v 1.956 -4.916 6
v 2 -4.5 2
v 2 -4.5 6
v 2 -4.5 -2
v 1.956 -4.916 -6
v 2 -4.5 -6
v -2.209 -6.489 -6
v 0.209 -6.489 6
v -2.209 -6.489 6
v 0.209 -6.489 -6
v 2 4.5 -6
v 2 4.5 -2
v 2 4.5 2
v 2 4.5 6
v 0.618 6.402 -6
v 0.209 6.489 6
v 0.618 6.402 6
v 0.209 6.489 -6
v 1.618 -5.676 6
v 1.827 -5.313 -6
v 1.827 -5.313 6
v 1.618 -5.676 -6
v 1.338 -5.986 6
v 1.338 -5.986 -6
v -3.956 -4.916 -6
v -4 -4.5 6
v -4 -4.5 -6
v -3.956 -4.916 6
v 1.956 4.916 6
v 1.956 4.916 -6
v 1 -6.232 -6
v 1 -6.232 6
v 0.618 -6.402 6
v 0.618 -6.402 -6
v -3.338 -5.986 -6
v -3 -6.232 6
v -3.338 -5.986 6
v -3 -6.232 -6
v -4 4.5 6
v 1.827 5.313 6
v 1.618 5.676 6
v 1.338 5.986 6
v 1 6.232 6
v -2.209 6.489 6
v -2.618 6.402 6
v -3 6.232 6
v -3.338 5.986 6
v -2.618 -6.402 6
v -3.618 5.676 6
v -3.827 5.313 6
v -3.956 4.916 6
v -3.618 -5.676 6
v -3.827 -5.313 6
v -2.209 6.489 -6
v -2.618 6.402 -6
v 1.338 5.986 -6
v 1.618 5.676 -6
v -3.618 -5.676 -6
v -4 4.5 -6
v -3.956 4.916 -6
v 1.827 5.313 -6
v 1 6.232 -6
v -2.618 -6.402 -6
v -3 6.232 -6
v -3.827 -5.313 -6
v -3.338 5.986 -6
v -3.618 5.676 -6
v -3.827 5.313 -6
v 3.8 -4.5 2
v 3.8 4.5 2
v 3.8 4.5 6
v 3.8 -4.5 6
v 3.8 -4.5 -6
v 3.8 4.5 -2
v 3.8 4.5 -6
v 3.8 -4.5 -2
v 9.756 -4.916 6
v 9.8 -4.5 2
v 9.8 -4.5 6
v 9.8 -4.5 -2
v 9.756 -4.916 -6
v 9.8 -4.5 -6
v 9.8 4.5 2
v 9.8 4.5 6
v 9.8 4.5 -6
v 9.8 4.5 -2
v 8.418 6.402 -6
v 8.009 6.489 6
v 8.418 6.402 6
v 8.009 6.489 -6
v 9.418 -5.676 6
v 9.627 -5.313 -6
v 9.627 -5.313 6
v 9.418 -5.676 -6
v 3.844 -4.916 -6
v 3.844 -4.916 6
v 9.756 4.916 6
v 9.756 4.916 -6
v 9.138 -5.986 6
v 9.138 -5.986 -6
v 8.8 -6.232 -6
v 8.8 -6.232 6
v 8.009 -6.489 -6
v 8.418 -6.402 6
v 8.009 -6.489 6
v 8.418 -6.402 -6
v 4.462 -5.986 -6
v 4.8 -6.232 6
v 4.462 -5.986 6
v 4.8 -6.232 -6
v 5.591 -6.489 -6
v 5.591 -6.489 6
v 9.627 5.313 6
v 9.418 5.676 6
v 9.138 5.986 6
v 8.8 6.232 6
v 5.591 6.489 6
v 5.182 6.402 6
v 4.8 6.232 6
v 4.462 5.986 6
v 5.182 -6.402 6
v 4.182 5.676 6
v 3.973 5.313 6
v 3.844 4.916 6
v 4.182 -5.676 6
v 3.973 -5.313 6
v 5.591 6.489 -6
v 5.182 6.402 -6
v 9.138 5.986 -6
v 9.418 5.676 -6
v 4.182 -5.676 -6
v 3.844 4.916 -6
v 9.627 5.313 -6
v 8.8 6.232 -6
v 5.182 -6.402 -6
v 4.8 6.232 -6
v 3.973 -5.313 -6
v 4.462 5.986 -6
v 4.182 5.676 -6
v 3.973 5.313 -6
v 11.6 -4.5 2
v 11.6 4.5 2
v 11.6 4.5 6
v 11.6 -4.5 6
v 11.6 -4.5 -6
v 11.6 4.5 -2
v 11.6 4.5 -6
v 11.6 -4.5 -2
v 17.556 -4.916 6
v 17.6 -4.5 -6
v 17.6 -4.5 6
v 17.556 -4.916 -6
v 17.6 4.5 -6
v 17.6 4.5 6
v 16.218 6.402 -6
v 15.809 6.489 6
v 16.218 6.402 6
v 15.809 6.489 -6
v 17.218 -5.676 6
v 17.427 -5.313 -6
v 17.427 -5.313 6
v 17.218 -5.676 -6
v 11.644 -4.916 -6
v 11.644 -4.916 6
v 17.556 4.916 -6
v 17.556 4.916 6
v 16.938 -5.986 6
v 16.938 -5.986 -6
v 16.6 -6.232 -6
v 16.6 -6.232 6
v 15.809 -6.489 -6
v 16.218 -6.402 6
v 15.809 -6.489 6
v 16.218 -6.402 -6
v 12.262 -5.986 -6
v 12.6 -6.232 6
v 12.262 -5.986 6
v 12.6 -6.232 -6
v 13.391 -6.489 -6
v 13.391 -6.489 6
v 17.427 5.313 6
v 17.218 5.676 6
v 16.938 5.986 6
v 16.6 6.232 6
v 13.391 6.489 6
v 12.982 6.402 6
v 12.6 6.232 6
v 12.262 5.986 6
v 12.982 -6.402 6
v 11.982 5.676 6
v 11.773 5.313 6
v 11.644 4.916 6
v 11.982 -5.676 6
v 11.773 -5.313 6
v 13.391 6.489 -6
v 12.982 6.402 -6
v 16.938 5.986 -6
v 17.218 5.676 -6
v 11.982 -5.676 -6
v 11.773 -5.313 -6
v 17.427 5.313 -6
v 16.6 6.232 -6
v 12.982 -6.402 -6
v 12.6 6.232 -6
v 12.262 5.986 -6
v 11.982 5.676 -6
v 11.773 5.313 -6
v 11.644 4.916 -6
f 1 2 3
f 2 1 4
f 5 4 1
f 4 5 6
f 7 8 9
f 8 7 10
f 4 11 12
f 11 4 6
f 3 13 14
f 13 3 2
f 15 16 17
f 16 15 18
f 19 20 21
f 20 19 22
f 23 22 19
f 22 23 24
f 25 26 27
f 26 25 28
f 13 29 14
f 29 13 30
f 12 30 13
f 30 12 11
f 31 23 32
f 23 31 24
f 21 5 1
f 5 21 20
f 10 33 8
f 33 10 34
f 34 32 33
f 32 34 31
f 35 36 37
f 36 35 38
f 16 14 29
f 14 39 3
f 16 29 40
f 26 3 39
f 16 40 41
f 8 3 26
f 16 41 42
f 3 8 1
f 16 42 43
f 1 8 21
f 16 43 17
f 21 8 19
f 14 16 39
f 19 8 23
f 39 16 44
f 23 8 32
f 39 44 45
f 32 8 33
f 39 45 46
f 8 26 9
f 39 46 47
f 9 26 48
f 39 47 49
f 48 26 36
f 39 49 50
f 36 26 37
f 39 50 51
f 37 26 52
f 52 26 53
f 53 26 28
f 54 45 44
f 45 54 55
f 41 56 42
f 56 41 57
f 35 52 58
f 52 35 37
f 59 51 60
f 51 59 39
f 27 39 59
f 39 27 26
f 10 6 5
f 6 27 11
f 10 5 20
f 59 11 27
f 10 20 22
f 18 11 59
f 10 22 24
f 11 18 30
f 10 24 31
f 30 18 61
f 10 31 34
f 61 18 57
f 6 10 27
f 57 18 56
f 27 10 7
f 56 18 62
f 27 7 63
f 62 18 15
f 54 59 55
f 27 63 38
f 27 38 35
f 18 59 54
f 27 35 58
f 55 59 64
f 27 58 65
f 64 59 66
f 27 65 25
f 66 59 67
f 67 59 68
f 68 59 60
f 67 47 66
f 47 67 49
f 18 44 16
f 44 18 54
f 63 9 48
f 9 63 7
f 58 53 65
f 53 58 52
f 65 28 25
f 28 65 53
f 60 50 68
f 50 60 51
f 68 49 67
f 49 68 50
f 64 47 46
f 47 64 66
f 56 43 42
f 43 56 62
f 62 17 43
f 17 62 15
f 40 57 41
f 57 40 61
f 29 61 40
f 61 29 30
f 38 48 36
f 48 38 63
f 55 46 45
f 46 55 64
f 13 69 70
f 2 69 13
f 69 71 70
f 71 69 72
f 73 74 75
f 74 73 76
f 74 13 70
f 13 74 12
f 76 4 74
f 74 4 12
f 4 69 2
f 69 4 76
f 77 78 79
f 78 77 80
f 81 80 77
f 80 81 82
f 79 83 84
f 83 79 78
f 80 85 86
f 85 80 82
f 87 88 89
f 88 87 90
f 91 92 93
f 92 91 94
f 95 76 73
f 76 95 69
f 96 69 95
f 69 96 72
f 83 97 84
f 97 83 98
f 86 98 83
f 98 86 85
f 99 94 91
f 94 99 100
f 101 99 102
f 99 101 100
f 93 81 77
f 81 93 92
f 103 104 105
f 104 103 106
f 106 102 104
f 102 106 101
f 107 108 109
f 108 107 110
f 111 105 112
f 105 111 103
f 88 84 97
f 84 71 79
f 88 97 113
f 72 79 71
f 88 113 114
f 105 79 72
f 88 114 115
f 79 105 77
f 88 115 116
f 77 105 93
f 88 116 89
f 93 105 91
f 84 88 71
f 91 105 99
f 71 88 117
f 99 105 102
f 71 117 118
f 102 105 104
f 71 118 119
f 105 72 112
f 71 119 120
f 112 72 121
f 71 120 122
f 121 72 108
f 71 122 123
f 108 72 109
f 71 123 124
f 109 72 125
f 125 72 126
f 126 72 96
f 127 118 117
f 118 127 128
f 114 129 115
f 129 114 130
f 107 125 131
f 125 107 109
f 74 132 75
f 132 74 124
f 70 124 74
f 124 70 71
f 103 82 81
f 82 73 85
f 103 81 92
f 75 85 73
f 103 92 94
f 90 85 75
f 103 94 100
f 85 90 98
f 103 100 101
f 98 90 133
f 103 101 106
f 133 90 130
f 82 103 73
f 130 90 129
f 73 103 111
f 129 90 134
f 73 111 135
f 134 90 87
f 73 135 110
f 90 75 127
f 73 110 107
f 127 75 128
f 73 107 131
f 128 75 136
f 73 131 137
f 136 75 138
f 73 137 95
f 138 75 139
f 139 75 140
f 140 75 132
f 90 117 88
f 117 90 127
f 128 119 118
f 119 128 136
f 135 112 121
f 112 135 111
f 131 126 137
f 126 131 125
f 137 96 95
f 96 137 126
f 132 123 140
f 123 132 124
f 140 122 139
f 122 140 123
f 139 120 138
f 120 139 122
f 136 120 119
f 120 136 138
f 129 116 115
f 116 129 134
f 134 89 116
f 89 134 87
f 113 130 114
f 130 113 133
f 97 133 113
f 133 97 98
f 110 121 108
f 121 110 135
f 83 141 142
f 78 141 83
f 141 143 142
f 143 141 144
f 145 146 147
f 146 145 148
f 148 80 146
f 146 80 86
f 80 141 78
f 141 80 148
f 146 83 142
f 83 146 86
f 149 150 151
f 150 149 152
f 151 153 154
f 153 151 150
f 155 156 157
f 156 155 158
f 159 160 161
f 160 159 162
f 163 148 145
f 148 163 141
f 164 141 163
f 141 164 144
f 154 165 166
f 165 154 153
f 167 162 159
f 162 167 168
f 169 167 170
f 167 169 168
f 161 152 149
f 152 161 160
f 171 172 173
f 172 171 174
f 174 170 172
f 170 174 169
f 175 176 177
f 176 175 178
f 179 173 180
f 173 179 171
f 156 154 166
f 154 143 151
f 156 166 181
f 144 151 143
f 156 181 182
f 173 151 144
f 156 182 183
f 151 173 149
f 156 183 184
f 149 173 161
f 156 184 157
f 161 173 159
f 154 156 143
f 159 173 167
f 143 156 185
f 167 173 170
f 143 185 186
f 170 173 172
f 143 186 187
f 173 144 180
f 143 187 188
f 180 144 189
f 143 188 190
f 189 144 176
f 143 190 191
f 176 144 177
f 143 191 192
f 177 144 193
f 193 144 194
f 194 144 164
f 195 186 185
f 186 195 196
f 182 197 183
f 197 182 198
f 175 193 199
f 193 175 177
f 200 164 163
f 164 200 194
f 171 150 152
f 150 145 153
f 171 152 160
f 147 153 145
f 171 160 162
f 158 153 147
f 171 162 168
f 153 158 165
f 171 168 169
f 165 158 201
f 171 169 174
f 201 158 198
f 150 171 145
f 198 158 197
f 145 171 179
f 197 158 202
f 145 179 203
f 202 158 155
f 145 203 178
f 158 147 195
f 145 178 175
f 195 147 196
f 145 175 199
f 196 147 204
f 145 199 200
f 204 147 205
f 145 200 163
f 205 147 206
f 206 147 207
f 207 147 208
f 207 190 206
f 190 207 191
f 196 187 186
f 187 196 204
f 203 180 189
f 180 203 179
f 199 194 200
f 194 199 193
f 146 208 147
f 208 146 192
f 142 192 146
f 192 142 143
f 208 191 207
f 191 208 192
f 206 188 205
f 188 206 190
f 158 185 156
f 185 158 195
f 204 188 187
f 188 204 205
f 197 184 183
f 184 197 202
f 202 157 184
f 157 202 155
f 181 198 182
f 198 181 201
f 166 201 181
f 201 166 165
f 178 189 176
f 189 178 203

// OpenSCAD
$fn=30;
height=12;
radius=2;
union(){
    hull(){
        translate([0,-4.5,0])cylinder(r=radius,h=height, center=true);
        translate([-2,4.5,0])cylinder(r=radius,h=height, center=true);
        translate([0,4.5,0])cylinder(r=radius,h=height, center=true);
        translate([-2,-4.5,0])cylinder(r=radius,h=height, center=true);
  }
  translate([2.9,0,0])cube([radius/1.111111111,radius+7,radius+2],center=true);
   translate([7.8,0,0]) hull(){
        translate([0,-4.5,0])cylinder(r=radius,h=height, center=true);
        translate([-2,4.5,0])cylinder(r=radius,h=height, center=true);
        translate([0,4.5,0])cylinder(r=radius,h=height, center=true);
        translate([-2,-4.5,0])cylinder(r=radius,h=height, center=true);
  }
  translate([10.7,0,0])cube([radius/1.111111111,radius+7,radius+2],center=true);
   translate([15.6,0,0]) hull(){
        translate([0,-4.5,0])cylinder(r=radius,h=height, center=true);
        translate([-2,4.5,0])cylinder(r=radius,h=height, center=true);
        translate([0,4.5,0])cylinder(r=radius,h=height, center=true);
        translate([-2,-4.5,0])cylinder(r=radius,h=height, center=true);
  }
}
